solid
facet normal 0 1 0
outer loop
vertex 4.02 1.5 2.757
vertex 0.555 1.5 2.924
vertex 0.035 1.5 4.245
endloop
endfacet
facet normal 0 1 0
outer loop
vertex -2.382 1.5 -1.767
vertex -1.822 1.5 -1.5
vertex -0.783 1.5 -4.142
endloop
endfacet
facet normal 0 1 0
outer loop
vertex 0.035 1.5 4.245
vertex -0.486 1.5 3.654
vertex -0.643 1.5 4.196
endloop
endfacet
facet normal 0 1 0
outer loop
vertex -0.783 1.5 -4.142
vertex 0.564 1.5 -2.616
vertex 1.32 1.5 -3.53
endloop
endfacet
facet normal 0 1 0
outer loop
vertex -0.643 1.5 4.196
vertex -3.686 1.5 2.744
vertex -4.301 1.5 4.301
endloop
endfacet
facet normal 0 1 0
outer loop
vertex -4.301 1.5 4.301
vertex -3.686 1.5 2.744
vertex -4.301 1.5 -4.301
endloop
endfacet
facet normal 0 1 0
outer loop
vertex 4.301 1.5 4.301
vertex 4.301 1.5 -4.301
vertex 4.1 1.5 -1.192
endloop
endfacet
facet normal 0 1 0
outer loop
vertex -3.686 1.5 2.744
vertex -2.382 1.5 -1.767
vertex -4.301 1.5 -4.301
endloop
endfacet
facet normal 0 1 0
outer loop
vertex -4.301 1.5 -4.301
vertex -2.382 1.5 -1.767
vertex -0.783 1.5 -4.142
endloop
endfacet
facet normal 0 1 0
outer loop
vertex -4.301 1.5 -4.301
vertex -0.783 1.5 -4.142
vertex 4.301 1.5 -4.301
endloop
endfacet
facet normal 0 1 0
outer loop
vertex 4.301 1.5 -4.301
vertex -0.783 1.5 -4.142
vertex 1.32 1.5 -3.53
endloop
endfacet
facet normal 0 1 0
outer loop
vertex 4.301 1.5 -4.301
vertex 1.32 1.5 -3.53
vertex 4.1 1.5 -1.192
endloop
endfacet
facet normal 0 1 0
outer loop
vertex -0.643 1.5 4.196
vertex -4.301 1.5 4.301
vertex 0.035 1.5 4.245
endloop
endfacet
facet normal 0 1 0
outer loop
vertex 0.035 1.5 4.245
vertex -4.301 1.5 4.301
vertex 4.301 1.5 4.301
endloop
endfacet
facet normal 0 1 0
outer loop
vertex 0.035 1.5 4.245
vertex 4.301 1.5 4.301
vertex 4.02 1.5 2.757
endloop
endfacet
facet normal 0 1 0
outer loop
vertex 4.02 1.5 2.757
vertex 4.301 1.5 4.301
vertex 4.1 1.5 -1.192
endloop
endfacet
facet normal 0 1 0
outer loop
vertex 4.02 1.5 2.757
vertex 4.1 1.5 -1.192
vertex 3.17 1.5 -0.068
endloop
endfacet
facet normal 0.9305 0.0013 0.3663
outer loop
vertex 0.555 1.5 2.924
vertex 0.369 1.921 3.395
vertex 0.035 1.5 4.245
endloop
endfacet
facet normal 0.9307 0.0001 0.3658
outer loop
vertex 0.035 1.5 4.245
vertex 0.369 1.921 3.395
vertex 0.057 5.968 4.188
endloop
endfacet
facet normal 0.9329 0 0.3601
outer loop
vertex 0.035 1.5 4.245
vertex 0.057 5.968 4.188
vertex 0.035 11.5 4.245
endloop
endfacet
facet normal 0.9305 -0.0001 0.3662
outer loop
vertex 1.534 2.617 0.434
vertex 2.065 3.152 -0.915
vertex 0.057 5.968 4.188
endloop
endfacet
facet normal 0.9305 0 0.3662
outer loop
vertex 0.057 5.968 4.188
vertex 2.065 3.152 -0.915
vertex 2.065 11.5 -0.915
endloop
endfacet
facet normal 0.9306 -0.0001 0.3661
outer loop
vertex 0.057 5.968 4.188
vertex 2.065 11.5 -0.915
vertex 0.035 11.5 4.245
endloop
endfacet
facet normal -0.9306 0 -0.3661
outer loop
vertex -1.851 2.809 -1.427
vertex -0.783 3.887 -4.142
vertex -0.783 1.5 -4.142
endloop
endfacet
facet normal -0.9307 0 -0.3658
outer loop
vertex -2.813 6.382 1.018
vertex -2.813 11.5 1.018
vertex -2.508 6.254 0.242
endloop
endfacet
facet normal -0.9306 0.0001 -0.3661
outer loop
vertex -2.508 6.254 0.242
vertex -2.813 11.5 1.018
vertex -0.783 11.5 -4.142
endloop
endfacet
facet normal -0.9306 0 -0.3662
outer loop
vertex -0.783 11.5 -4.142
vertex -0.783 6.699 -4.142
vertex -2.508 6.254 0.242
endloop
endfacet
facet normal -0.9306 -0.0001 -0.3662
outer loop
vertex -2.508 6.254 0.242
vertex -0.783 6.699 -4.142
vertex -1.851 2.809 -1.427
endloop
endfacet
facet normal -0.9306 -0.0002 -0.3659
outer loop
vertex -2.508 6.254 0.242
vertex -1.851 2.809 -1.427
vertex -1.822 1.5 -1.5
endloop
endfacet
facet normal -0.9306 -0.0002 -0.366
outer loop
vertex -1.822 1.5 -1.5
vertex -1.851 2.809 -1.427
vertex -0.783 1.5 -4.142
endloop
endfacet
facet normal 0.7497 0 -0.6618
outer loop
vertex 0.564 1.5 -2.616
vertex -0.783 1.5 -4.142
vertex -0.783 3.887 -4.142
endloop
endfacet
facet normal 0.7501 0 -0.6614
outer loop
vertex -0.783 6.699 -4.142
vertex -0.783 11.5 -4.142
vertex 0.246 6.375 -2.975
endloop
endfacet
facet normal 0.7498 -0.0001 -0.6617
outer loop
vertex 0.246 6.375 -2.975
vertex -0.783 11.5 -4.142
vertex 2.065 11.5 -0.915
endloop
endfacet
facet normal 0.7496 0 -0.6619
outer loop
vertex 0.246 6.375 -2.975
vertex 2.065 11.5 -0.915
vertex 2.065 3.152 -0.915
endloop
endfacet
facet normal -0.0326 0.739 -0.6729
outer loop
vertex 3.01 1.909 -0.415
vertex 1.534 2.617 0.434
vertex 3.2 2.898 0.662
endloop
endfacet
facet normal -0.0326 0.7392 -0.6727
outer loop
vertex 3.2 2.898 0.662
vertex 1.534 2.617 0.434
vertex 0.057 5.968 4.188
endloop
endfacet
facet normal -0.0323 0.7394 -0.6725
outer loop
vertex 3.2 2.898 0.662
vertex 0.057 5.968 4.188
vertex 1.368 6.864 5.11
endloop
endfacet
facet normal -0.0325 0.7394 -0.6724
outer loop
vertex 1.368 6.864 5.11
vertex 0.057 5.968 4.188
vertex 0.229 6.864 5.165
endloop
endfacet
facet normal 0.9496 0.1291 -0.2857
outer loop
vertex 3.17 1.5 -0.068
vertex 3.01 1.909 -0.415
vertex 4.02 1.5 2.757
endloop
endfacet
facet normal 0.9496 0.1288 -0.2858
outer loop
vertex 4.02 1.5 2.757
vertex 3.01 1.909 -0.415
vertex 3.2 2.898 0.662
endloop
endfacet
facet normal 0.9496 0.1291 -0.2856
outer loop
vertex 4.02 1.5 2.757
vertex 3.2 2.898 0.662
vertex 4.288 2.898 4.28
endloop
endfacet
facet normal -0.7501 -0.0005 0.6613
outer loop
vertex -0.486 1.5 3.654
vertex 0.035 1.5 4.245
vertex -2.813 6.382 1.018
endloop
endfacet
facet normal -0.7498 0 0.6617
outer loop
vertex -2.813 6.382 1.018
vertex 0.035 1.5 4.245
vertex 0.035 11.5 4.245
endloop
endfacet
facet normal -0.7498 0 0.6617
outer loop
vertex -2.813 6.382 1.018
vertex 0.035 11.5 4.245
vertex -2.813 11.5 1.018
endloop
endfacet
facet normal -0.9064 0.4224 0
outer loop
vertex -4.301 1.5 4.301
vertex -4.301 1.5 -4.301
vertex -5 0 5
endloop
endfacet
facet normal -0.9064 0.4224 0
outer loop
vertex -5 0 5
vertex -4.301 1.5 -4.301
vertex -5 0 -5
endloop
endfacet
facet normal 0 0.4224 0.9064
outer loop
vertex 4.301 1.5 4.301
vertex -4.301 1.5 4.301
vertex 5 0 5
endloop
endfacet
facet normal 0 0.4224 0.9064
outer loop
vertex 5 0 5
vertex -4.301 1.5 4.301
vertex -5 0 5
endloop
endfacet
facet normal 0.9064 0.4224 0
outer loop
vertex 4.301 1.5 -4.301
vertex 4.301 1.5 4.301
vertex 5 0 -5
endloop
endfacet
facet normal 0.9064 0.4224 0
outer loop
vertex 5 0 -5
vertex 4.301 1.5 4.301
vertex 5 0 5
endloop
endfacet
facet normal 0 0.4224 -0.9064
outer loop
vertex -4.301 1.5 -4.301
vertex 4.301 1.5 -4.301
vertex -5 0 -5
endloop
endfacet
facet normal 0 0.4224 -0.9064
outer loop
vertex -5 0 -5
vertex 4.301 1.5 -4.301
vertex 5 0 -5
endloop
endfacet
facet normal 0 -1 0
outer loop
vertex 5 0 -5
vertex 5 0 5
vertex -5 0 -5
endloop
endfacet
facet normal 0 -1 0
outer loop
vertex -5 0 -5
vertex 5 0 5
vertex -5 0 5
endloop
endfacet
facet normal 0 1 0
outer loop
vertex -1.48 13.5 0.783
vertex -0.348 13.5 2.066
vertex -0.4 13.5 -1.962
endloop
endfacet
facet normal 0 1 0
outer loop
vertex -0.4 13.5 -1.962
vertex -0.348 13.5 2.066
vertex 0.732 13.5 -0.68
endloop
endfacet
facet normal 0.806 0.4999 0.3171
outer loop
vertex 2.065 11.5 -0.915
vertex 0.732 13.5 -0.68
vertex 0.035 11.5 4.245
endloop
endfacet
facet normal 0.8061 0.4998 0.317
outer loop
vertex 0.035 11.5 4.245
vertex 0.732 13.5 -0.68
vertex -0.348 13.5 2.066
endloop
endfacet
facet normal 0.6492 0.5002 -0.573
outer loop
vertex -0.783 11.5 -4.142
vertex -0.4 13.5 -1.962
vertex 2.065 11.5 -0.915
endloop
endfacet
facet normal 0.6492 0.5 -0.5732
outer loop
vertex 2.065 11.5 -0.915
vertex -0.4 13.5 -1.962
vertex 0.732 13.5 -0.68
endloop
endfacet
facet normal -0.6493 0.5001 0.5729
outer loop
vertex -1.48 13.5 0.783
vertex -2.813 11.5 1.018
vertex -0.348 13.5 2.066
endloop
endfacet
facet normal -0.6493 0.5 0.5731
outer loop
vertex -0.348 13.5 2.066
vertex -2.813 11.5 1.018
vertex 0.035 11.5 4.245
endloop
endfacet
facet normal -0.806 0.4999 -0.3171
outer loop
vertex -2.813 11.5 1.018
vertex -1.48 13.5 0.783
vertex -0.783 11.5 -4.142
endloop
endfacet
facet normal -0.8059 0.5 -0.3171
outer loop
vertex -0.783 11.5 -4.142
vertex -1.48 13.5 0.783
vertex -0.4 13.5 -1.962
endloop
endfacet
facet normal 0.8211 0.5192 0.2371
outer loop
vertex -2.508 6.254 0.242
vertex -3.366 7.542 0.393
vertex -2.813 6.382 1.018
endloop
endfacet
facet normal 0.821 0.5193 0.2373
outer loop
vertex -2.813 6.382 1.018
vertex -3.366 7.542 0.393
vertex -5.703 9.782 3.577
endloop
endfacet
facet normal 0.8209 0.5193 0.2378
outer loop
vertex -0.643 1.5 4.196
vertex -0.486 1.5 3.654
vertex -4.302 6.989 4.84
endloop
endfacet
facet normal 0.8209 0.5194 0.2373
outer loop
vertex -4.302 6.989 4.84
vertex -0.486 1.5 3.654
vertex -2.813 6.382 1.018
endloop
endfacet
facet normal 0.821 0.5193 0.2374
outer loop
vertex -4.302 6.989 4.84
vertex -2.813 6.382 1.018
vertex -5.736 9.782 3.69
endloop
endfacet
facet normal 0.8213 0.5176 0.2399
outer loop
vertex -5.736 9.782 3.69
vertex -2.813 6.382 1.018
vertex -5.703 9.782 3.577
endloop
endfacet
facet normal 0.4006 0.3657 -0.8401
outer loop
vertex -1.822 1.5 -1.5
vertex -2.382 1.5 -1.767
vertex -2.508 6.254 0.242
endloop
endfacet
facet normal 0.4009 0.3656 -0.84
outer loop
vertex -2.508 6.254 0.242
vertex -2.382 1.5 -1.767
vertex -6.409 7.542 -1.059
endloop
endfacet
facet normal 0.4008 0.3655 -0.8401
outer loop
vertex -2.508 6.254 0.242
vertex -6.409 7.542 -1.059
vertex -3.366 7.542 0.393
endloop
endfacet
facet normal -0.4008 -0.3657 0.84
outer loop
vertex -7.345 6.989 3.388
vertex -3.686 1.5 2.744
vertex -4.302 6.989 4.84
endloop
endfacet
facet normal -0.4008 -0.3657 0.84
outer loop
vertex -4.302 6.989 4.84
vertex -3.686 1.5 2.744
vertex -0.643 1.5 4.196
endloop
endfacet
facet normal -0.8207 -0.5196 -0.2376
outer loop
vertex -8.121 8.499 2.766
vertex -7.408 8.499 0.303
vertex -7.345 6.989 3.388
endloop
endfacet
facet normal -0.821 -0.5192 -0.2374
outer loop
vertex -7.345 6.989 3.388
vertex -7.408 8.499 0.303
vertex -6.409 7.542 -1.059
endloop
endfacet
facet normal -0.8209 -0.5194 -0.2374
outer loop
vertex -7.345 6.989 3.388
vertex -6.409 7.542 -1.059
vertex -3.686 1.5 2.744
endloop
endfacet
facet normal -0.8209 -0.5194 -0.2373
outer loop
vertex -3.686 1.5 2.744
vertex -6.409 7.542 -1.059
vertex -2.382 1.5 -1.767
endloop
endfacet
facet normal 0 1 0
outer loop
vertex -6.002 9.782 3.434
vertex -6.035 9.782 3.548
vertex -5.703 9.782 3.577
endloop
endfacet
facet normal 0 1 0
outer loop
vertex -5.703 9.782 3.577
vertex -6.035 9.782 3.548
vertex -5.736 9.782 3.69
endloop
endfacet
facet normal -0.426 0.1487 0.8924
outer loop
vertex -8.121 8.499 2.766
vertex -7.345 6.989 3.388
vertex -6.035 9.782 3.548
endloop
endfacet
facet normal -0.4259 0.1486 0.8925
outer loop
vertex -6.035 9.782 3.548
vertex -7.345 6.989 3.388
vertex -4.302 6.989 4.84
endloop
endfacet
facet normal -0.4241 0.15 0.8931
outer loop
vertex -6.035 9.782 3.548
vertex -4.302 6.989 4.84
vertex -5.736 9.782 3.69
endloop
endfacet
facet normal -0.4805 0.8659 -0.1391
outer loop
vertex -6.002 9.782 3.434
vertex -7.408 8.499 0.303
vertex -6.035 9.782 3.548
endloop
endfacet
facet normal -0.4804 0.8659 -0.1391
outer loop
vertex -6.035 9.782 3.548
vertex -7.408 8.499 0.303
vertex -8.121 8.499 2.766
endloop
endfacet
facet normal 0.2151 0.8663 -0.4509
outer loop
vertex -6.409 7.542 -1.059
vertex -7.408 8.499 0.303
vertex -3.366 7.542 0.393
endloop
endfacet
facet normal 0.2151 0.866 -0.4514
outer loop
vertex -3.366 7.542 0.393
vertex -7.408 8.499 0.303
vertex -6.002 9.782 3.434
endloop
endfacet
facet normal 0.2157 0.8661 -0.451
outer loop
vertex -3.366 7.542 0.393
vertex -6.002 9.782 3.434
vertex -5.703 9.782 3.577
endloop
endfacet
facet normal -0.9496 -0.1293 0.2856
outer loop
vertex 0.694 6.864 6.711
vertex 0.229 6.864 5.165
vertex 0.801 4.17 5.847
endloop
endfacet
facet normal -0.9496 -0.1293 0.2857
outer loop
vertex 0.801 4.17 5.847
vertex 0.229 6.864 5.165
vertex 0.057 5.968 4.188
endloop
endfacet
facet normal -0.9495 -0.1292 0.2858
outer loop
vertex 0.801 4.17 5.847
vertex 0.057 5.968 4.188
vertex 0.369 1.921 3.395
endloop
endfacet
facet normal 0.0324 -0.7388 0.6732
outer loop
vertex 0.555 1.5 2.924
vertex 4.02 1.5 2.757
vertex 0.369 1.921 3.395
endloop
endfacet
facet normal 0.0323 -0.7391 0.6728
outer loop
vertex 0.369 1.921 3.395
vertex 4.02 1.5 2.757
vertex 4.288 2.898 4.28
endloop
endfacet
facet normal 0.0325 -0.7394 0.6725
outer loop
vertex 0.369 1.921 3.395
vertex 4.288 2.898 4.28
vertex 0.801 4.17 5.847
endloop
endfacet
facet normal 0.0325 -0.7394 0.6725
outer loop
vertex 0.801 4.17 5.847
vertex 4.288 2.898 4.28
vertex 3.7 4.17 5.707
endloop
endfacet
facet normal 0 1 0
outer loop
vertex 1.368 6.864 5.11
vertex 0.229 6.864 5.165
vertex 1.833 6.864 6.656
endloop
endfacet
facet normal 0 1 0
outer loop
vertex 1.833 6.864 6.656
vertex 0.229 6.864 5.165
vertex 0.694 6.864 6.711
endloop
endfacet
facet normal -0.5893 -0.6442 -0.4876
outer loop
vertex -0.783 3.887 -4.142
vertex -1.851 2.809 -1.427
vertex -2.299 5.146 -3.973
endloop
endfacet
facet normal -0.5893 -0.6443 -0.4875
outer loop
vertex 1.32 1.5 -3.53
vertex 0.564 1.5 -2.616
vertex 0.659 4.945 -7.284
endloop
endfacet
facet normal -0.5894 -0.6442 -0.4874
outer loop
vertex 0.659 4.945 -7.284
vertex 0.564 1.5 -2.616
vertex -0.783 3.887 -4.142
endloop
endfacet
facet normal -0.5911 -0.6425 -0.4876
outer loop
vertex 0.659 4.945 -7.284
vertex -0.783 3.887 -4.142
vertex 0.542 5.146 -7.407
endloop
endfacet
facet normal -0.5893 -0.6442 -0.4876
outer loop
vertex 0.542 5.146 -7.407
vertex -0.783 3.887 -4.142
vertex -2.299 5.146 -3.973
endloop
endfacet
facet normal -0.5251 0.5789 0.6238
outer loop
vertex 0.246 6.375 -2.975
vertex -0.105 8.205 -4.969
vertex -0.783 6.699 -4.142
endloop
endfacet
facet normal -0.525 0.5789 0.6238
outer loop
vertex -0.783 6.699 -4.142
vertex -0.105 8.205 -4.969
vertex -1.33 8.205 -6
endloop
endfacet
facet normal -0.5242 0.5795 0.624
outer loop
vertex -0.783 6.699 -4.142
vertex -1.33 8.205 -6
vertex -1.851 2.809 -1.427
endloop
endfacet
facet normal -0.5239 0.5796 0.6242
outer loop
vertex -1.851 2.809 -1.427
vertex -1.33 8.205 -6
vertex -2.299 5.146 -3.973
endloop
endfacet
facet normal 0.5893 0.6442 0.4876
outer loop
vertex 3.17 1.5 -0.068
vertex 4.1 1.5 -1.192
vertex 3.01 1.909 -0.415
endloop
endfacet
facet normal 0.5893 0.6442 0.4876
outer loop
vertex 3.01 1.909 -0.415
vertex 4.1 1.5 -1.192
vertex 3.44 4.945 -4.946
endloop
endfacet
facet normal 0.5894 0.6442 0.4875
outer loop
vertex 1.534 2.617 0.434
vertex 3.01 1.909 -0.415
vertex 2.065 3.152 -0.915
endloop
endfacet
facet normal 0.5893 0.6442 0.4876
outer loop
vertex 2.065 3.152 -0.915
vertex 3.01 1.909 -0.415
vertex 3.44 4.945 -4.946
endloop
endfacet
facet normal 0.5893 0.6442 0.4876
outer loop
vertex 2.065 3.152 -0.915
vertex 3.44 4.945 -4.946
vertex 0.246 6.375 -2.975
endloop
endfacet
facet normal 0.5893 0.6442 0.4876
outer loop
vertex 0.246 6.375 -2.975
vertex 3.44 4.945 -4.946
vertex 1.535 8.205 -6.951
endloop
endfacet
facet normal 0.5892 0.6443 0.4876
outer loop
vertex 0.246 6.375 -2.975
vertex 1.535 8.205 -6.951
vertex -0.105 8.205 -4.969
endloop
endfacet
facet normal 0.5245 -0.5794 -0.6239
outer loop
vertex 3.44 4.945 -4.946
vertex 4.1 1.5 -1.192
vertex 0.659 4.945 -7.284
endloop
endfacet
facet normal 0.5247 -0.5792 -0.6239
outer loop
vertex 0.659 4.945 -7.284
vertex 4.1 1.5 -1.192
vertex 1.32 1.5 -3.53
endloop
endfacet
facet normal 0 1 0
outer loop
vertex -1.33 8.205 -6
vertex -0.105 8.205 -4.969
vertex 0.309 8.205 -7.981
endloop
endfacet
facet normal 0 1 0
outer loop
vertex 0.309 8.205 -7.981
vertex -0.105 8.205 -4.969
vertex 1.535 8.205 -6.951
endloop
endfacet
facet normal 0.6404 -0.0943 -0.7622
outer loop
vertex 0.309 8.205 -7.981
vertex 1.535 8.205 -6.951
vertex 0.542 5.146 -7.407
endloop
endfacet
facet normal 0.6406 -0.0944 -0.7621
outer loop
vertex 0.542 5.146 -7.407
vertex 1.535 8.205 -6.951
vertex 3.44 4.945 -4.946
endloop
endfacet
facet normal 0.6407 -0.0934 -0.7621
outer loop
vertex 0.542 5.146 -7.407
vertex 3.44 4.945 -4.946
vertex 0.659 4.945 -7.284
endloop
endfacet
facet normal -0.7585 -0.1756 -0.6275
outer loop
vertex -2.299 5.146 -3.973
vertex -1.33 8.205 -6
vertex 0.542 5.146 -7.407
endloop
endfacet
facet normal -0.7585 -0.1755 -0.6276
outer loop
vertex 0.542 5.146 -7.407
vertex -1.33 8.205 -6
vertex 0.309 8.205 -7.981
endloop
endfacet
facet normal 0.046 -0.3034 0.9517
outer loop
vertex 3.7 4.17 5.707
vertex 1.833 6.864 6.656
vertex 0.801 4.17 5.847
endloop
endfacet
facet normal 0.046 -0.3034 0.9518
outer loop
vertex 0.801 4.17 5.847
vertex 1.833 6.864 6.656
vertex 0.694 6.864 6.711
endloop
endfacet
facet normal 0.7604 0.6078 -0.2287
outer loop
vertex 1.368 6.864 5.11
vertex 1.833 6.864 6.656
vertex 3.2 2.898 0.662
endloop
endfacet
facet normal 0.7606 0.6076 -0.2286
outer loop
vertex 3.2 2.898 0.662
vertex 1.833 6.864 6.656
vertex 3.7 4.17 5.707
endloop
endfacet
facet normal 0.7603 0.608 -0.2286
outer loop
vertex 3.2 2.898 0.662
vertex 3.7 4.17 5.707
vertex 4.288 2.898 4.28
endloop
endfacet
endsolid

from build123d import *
from OCP.BRepFilletAPI import BRepFilletAPI_MakeChamfer

# Parameters (mm, degrees)
SKETCH1_W           = 10
SKETCH1_H           = 10
BOSS_EXTRUDE1_DEPTH = 1.5
BOSS_EXTRUDE1_TAPER = 25
BOSS_EXTRUDE2_DEPTH = 12
CHAMFER1_SIZE       = 2
CHAMFER1_SIZE2      = 1.154700538
BOSS_EXTRUDE3_DEPTH = 10
CHAMFER2_SIZE       = 3
CHAMFER2_SIZE2      = 2.406716572
CHAMFER2_SIZE2_2    = 1.500380386
CHAMFER2_SIZE2_3    = 1.516874639
BOSS_EXTRUDE4_DEPTH = 8
BOSS_EXTRUDE5_DEPTH = 10
CHAMFER3_SIZE       = 4
CHAMFER3_SIZE2      = 2.031521954
CHAMFER3_SIZE2_2    = 2.008940765
CHAMFER3_SIZE2_3    = 2.098992436
CHAMFER3_SIZE2_4    = 2.518260147


with BuildPart() as part:
    # Sketch1 → Boss-Extrude1 (new body)
    with BuildSketch(Plane(origin=(0, 0, 0), x_dir=(1, 0, 0), z_dir=(0, 1, 0))):
        Rectangle(SKETCH1_W, SKETCH1_H)
    extrude(amount=BOSS_EXTRUDE1_DEPTH, taper=BOSS_EXTRUDE1_TAPER)

    # Sketch2 → Boss-Extrude2 (add)
    with BuildSketch(Plane(origin=(0, 1.5, 0), x_dir=(1, 0, 0), z_dir=(0, 1, 0))):
        Polygon((-2.812986954, -1.017959657), (-0.78305427, 4.14157821), (2.064873257, 0.914552857), (0.034940573, -4.24498501), align=None)
    extrude(amount=BOSS_EXTRUDE2_DEPTH)

    # Chamfer1: one chamfer whose edges measure the first distance from different faces: ONE call of the kernel's chamfer builder (chamfer() names one face for all edges)
    chamfer1_edges_1 = [part.edges().sort_by_distance(p)[0] for p in [
        (-1.389023191, 13.5, 2.631472333),
    ]]
    chamfer1_side_1 = [part.faces().sort_by_distance(p)[0] for p in [
        (-1.389023191, 7.5, 2.631472333),
    ]]
    chamfer1_edges_2 = [part.edges().sort_by_distance(p)[0] for p in [
        (1.049906915, 13.5, 1.665216077),
    ]]
    chamfer1_side_2 = [part.faces().sort_by_distance(p)[0] for p in [
        (1.049906915, 7.5, 1.665216077),
    ]]
    chamfer1_edges_3 = [part.edges().sort_by_distance(p)[0] for p in [
        (0.640909494, 13.5, -2.528065533),
    ]]
    chamfer1_side_3 = [part.faces().sort_by_distance(p)[0] for p in [
        (0.640909494, 7.5, -2.528065533),
    ]]
    chamfer1_edges_4 = [part.edges().sort_by_distance(p)[0] for p in [
        (-1.798020612, 13.5, -1.561809276),
    ]]
    chamfer1_side_4 = [part.faces().sort_by_distance(p)[0] for p in [
        (-1.798020612, 7.5, -1.561809276),
    ]]
    chamfer1 = BRepFilletAPI_MakeChamfer(part.part.solid().wrapped)
    for e in chamfer1_edges_1:
        chamfer1.Add(CHAMFER1_SIZE, CHAMFER1_SIZE2, e.wrapped, chamfer1_side_1[0].wrapped)  # the first distance lies on this face
    for e in chamfer1_edges_2:
        chamfer1.Add(CHAMFER1_SIZE, CHAMFER1_SIZE2, e.wrapped, chamfer1_side_2[0].wrapped)  # the first distance lies on this face
    for e in chamfer1_edges_3:
        chamfer1.Add(CHAMFER1_SIZE, CHAMFER1_SIZE2, e.wrapped, chamfer1_side_3[0].wrapped)  # the first distance lies on this face
    for e in chamfer1_edges_4:
        chamfer1.Add(CHAMFER1_SIZE, CHAMFER1_SIZE2, e.wrapped, chamfer1_side_4[0].wrapped)  # the first distance lies on this face
    add(Compound.cast(chamfer1.Shape()), mode=Mode.REPLACE)

    # Sketch4 → Boss-Extrude3 (add, along a direction that is not the sketch's normal)
    with BuildSketch(Plane(origin=(0, 1.5, 0), x_dir=(1, 0, 0), z_dir=(0, 1, 0))):
        Polygon((-3.685896684, -2.744355022), (-2.381707977, 1.767077084), (0.661288248, 0.315446351), (-0.642900459, -4.195985754), align=None)
    extrude(amount=BOSS_EXTRUDE3_DEPTH, dir=(-0.5520160266548657, 0.8281604089609962, 0.09710120156687128))

    # Chamfer2: one chamfer whose edges measure the first distance from different faces: ONE call of the kernel's chamfer builder (chamfer() names one face for all edges)
    chamfer2_edges_1 = [part.edges().sort_by_distance(p)[0] for p in [
        (-6.380370131, 9.78160409, -0.070249702),
    ]]
    chamfer2_side_1 = [part.faces().sort_by_distance(p)[0] for p in [
        (-7.032464485, 9.78160409, 2.185466351),
    ]]
    chamfer2_edges_2 = [part.edges().sort_by_distance(p)[0] for p in [
        (-8.553962597, 9.78160409, 1.459650985),
    ]]
    chamfer2_side_2 = [part.faces().sort_by_distance(p)[0] for p in [
        (-7.032464485, 9.78160409, 2.185466351),
    ]]
    chamfer2_edges_3 = [part.edges().sort_by_distance(p)[0] for p in [
        (-7.684558838, 9.78160409, 4.441182404),
    ]]
    chamfer2_side_3 = [part.faces().sort_by_distance(p)[0] for p in [
        (-4.924478705, 5.640802045, 3.955676396),
    ]]
    chamfer2 = BRepFilletAPI_MakeChamfer(part.part.solid().wrapped)
    for e in chamfer2_edges_1:
        chamfer2.Add(CHAMFER2_SIZE, CHAMFER2_SIZE2, e.wrapped, chamfer2_side_1[0].wrapped)  # the first distance lies on this face
    for e in chamfer2_edges_2:
        chamfer2.Add(CHAMFER2_SIZE, CHAMFER2_SIZE2_2, e.wrapped, chamfer2_side_2[0].wrapped)  # the first distance lies on this face
    for e in chamfer2_edges_3:
        chamfer2.Add(CHAMFER2_SIZE, CHAMFER2_SIZE2_3, e.wrapped, chamfer2_side_3[0].wrapped)  # the first distance lies on this face
    add(Compound.cast(chamfer2.Shape()), mode=Mode.REPLACE)

    # Sketch5 → Boss-Extrude4 (add, along a direction that is not the sketch's normal)
    with BuildSketch(Plane(origin=(0, 1.5, 0), x_dir=(1, 0, 0), z_dir=(0, 1, 0))):
        Polygon((-0.799065943, 0.680702687), (0.288664987, -2.936597885), (4.019801987, -2.756774896), (2.932071057, 0.860525676), align=None)
    extrude(amount=BOSS_EXTRUDE4_DEPTH, dir=(0.12852896278760917, 0.6705109361257466, 0.7306814560809083))

    # Sketch6 → Boss-Extrude5 (add, along a direction that is not the sketch's normal)
    with BuildSketch(Plane(origin=(0, 1.5, 0), x_dir=(1, 0, 0), z_dir=(0, 1, 0))):
        Polygon((-1.600069282, 0), (1.180756558, -2.337369015), (4.1003801, 1.192394032), (1.31955426, 3.529763047), align=None)
    extrude(amount=BOSS_EXTRUDE5_DEPTH, dir=(-0.12852896278760925, 0.6705109361257466, -0.7306814560809083))

    # Chamfer3: one chamfer whose edges measure the first distance from different faces: ONE call of the kernel's chamfer builder (chamfer() names one face for all edges)
    chamfer3_edges_1 = [part.edges().sort_by_distance(p)[0] for p in [
        (-1.425547139, 8.205109361, -9.071696084),
    ]]
    chamfer3_side_1 = [part.faces().sort_by_distance(p)[0] for p in [
        (-0.77862694, 5.370569751, -6.108006882),
    ]]
    chamfer3_edges_2 = [part.edges().sort_by_distance(p)[0] for p in [
        (1.424677552, 8.205109361, -9.6678931),
    ]]
    chamfer3_side_2 = [part.faces().sort_by_distance(p)[0] for p in [
        (2.067322366, 4.852554681, -6.01448582),
    ]]
    chamfer3_edges_3 = [part.edges().sort_by_distance(p)[0] for p in [
        (3.182465189, 6.864087489, 8.692138039),
    ]]
    chamfer3_side_3 = [part.faces().sort_by_distance(p)[0] for p in [
        (2.674699398, 4.189172634, 5.776940656),
    ]]
    chamfer3_edges_4 = [part.edges().sort_by_distance(p)[0] for p in [
        (4.504168224, 6.864087489, 6.793576259),
    ]]
    chamfer3_side_4 = [part.faces().sort_by_distance(p)[0] for p in [
        (3.998071432, 4.203478125, 3.907212333),
    ]]
    chamfer3 = BRepFilletAPI_MakeChamfer(part.part.solid().wrapped)
    for e in chamfer3_edges_1:
        chamfer3.Add(CHAMFER3_SIZE, CHAMFER3_SIZE2, e.wrapped, chamfer3_side_1[0].wrapped)  # the first distance lies on this face
    for e in chamfer3_edges_2:
        chamfer3.Add(CHAMFER3_SIZE, CHAMFER3_SIZE2_2, e.wrapped, chamfer3_side_2[0].wrapped)  # the first distance lies on this face
    for e in chamfer3_edges_3:
        chamfer3.Add(CHAMFER3_SIZE, CHAMFER3_SIZE2_3, e.wrapped, chamfer3_side_3[0].wrapped)  # the first distance lies on this face
    for e in chamfer3_edges_4:
        chamfer3.Add(CHAMFER3_SIZE, CHAMFER3_SIZE2_4, e.wrapped, chamfer3_side_4[0].wrapped)  # the first distance lies on this face
    add(Compound.cast(chamfer3.Shape()), mode=Mode.REPLACE)


solid = part.part
